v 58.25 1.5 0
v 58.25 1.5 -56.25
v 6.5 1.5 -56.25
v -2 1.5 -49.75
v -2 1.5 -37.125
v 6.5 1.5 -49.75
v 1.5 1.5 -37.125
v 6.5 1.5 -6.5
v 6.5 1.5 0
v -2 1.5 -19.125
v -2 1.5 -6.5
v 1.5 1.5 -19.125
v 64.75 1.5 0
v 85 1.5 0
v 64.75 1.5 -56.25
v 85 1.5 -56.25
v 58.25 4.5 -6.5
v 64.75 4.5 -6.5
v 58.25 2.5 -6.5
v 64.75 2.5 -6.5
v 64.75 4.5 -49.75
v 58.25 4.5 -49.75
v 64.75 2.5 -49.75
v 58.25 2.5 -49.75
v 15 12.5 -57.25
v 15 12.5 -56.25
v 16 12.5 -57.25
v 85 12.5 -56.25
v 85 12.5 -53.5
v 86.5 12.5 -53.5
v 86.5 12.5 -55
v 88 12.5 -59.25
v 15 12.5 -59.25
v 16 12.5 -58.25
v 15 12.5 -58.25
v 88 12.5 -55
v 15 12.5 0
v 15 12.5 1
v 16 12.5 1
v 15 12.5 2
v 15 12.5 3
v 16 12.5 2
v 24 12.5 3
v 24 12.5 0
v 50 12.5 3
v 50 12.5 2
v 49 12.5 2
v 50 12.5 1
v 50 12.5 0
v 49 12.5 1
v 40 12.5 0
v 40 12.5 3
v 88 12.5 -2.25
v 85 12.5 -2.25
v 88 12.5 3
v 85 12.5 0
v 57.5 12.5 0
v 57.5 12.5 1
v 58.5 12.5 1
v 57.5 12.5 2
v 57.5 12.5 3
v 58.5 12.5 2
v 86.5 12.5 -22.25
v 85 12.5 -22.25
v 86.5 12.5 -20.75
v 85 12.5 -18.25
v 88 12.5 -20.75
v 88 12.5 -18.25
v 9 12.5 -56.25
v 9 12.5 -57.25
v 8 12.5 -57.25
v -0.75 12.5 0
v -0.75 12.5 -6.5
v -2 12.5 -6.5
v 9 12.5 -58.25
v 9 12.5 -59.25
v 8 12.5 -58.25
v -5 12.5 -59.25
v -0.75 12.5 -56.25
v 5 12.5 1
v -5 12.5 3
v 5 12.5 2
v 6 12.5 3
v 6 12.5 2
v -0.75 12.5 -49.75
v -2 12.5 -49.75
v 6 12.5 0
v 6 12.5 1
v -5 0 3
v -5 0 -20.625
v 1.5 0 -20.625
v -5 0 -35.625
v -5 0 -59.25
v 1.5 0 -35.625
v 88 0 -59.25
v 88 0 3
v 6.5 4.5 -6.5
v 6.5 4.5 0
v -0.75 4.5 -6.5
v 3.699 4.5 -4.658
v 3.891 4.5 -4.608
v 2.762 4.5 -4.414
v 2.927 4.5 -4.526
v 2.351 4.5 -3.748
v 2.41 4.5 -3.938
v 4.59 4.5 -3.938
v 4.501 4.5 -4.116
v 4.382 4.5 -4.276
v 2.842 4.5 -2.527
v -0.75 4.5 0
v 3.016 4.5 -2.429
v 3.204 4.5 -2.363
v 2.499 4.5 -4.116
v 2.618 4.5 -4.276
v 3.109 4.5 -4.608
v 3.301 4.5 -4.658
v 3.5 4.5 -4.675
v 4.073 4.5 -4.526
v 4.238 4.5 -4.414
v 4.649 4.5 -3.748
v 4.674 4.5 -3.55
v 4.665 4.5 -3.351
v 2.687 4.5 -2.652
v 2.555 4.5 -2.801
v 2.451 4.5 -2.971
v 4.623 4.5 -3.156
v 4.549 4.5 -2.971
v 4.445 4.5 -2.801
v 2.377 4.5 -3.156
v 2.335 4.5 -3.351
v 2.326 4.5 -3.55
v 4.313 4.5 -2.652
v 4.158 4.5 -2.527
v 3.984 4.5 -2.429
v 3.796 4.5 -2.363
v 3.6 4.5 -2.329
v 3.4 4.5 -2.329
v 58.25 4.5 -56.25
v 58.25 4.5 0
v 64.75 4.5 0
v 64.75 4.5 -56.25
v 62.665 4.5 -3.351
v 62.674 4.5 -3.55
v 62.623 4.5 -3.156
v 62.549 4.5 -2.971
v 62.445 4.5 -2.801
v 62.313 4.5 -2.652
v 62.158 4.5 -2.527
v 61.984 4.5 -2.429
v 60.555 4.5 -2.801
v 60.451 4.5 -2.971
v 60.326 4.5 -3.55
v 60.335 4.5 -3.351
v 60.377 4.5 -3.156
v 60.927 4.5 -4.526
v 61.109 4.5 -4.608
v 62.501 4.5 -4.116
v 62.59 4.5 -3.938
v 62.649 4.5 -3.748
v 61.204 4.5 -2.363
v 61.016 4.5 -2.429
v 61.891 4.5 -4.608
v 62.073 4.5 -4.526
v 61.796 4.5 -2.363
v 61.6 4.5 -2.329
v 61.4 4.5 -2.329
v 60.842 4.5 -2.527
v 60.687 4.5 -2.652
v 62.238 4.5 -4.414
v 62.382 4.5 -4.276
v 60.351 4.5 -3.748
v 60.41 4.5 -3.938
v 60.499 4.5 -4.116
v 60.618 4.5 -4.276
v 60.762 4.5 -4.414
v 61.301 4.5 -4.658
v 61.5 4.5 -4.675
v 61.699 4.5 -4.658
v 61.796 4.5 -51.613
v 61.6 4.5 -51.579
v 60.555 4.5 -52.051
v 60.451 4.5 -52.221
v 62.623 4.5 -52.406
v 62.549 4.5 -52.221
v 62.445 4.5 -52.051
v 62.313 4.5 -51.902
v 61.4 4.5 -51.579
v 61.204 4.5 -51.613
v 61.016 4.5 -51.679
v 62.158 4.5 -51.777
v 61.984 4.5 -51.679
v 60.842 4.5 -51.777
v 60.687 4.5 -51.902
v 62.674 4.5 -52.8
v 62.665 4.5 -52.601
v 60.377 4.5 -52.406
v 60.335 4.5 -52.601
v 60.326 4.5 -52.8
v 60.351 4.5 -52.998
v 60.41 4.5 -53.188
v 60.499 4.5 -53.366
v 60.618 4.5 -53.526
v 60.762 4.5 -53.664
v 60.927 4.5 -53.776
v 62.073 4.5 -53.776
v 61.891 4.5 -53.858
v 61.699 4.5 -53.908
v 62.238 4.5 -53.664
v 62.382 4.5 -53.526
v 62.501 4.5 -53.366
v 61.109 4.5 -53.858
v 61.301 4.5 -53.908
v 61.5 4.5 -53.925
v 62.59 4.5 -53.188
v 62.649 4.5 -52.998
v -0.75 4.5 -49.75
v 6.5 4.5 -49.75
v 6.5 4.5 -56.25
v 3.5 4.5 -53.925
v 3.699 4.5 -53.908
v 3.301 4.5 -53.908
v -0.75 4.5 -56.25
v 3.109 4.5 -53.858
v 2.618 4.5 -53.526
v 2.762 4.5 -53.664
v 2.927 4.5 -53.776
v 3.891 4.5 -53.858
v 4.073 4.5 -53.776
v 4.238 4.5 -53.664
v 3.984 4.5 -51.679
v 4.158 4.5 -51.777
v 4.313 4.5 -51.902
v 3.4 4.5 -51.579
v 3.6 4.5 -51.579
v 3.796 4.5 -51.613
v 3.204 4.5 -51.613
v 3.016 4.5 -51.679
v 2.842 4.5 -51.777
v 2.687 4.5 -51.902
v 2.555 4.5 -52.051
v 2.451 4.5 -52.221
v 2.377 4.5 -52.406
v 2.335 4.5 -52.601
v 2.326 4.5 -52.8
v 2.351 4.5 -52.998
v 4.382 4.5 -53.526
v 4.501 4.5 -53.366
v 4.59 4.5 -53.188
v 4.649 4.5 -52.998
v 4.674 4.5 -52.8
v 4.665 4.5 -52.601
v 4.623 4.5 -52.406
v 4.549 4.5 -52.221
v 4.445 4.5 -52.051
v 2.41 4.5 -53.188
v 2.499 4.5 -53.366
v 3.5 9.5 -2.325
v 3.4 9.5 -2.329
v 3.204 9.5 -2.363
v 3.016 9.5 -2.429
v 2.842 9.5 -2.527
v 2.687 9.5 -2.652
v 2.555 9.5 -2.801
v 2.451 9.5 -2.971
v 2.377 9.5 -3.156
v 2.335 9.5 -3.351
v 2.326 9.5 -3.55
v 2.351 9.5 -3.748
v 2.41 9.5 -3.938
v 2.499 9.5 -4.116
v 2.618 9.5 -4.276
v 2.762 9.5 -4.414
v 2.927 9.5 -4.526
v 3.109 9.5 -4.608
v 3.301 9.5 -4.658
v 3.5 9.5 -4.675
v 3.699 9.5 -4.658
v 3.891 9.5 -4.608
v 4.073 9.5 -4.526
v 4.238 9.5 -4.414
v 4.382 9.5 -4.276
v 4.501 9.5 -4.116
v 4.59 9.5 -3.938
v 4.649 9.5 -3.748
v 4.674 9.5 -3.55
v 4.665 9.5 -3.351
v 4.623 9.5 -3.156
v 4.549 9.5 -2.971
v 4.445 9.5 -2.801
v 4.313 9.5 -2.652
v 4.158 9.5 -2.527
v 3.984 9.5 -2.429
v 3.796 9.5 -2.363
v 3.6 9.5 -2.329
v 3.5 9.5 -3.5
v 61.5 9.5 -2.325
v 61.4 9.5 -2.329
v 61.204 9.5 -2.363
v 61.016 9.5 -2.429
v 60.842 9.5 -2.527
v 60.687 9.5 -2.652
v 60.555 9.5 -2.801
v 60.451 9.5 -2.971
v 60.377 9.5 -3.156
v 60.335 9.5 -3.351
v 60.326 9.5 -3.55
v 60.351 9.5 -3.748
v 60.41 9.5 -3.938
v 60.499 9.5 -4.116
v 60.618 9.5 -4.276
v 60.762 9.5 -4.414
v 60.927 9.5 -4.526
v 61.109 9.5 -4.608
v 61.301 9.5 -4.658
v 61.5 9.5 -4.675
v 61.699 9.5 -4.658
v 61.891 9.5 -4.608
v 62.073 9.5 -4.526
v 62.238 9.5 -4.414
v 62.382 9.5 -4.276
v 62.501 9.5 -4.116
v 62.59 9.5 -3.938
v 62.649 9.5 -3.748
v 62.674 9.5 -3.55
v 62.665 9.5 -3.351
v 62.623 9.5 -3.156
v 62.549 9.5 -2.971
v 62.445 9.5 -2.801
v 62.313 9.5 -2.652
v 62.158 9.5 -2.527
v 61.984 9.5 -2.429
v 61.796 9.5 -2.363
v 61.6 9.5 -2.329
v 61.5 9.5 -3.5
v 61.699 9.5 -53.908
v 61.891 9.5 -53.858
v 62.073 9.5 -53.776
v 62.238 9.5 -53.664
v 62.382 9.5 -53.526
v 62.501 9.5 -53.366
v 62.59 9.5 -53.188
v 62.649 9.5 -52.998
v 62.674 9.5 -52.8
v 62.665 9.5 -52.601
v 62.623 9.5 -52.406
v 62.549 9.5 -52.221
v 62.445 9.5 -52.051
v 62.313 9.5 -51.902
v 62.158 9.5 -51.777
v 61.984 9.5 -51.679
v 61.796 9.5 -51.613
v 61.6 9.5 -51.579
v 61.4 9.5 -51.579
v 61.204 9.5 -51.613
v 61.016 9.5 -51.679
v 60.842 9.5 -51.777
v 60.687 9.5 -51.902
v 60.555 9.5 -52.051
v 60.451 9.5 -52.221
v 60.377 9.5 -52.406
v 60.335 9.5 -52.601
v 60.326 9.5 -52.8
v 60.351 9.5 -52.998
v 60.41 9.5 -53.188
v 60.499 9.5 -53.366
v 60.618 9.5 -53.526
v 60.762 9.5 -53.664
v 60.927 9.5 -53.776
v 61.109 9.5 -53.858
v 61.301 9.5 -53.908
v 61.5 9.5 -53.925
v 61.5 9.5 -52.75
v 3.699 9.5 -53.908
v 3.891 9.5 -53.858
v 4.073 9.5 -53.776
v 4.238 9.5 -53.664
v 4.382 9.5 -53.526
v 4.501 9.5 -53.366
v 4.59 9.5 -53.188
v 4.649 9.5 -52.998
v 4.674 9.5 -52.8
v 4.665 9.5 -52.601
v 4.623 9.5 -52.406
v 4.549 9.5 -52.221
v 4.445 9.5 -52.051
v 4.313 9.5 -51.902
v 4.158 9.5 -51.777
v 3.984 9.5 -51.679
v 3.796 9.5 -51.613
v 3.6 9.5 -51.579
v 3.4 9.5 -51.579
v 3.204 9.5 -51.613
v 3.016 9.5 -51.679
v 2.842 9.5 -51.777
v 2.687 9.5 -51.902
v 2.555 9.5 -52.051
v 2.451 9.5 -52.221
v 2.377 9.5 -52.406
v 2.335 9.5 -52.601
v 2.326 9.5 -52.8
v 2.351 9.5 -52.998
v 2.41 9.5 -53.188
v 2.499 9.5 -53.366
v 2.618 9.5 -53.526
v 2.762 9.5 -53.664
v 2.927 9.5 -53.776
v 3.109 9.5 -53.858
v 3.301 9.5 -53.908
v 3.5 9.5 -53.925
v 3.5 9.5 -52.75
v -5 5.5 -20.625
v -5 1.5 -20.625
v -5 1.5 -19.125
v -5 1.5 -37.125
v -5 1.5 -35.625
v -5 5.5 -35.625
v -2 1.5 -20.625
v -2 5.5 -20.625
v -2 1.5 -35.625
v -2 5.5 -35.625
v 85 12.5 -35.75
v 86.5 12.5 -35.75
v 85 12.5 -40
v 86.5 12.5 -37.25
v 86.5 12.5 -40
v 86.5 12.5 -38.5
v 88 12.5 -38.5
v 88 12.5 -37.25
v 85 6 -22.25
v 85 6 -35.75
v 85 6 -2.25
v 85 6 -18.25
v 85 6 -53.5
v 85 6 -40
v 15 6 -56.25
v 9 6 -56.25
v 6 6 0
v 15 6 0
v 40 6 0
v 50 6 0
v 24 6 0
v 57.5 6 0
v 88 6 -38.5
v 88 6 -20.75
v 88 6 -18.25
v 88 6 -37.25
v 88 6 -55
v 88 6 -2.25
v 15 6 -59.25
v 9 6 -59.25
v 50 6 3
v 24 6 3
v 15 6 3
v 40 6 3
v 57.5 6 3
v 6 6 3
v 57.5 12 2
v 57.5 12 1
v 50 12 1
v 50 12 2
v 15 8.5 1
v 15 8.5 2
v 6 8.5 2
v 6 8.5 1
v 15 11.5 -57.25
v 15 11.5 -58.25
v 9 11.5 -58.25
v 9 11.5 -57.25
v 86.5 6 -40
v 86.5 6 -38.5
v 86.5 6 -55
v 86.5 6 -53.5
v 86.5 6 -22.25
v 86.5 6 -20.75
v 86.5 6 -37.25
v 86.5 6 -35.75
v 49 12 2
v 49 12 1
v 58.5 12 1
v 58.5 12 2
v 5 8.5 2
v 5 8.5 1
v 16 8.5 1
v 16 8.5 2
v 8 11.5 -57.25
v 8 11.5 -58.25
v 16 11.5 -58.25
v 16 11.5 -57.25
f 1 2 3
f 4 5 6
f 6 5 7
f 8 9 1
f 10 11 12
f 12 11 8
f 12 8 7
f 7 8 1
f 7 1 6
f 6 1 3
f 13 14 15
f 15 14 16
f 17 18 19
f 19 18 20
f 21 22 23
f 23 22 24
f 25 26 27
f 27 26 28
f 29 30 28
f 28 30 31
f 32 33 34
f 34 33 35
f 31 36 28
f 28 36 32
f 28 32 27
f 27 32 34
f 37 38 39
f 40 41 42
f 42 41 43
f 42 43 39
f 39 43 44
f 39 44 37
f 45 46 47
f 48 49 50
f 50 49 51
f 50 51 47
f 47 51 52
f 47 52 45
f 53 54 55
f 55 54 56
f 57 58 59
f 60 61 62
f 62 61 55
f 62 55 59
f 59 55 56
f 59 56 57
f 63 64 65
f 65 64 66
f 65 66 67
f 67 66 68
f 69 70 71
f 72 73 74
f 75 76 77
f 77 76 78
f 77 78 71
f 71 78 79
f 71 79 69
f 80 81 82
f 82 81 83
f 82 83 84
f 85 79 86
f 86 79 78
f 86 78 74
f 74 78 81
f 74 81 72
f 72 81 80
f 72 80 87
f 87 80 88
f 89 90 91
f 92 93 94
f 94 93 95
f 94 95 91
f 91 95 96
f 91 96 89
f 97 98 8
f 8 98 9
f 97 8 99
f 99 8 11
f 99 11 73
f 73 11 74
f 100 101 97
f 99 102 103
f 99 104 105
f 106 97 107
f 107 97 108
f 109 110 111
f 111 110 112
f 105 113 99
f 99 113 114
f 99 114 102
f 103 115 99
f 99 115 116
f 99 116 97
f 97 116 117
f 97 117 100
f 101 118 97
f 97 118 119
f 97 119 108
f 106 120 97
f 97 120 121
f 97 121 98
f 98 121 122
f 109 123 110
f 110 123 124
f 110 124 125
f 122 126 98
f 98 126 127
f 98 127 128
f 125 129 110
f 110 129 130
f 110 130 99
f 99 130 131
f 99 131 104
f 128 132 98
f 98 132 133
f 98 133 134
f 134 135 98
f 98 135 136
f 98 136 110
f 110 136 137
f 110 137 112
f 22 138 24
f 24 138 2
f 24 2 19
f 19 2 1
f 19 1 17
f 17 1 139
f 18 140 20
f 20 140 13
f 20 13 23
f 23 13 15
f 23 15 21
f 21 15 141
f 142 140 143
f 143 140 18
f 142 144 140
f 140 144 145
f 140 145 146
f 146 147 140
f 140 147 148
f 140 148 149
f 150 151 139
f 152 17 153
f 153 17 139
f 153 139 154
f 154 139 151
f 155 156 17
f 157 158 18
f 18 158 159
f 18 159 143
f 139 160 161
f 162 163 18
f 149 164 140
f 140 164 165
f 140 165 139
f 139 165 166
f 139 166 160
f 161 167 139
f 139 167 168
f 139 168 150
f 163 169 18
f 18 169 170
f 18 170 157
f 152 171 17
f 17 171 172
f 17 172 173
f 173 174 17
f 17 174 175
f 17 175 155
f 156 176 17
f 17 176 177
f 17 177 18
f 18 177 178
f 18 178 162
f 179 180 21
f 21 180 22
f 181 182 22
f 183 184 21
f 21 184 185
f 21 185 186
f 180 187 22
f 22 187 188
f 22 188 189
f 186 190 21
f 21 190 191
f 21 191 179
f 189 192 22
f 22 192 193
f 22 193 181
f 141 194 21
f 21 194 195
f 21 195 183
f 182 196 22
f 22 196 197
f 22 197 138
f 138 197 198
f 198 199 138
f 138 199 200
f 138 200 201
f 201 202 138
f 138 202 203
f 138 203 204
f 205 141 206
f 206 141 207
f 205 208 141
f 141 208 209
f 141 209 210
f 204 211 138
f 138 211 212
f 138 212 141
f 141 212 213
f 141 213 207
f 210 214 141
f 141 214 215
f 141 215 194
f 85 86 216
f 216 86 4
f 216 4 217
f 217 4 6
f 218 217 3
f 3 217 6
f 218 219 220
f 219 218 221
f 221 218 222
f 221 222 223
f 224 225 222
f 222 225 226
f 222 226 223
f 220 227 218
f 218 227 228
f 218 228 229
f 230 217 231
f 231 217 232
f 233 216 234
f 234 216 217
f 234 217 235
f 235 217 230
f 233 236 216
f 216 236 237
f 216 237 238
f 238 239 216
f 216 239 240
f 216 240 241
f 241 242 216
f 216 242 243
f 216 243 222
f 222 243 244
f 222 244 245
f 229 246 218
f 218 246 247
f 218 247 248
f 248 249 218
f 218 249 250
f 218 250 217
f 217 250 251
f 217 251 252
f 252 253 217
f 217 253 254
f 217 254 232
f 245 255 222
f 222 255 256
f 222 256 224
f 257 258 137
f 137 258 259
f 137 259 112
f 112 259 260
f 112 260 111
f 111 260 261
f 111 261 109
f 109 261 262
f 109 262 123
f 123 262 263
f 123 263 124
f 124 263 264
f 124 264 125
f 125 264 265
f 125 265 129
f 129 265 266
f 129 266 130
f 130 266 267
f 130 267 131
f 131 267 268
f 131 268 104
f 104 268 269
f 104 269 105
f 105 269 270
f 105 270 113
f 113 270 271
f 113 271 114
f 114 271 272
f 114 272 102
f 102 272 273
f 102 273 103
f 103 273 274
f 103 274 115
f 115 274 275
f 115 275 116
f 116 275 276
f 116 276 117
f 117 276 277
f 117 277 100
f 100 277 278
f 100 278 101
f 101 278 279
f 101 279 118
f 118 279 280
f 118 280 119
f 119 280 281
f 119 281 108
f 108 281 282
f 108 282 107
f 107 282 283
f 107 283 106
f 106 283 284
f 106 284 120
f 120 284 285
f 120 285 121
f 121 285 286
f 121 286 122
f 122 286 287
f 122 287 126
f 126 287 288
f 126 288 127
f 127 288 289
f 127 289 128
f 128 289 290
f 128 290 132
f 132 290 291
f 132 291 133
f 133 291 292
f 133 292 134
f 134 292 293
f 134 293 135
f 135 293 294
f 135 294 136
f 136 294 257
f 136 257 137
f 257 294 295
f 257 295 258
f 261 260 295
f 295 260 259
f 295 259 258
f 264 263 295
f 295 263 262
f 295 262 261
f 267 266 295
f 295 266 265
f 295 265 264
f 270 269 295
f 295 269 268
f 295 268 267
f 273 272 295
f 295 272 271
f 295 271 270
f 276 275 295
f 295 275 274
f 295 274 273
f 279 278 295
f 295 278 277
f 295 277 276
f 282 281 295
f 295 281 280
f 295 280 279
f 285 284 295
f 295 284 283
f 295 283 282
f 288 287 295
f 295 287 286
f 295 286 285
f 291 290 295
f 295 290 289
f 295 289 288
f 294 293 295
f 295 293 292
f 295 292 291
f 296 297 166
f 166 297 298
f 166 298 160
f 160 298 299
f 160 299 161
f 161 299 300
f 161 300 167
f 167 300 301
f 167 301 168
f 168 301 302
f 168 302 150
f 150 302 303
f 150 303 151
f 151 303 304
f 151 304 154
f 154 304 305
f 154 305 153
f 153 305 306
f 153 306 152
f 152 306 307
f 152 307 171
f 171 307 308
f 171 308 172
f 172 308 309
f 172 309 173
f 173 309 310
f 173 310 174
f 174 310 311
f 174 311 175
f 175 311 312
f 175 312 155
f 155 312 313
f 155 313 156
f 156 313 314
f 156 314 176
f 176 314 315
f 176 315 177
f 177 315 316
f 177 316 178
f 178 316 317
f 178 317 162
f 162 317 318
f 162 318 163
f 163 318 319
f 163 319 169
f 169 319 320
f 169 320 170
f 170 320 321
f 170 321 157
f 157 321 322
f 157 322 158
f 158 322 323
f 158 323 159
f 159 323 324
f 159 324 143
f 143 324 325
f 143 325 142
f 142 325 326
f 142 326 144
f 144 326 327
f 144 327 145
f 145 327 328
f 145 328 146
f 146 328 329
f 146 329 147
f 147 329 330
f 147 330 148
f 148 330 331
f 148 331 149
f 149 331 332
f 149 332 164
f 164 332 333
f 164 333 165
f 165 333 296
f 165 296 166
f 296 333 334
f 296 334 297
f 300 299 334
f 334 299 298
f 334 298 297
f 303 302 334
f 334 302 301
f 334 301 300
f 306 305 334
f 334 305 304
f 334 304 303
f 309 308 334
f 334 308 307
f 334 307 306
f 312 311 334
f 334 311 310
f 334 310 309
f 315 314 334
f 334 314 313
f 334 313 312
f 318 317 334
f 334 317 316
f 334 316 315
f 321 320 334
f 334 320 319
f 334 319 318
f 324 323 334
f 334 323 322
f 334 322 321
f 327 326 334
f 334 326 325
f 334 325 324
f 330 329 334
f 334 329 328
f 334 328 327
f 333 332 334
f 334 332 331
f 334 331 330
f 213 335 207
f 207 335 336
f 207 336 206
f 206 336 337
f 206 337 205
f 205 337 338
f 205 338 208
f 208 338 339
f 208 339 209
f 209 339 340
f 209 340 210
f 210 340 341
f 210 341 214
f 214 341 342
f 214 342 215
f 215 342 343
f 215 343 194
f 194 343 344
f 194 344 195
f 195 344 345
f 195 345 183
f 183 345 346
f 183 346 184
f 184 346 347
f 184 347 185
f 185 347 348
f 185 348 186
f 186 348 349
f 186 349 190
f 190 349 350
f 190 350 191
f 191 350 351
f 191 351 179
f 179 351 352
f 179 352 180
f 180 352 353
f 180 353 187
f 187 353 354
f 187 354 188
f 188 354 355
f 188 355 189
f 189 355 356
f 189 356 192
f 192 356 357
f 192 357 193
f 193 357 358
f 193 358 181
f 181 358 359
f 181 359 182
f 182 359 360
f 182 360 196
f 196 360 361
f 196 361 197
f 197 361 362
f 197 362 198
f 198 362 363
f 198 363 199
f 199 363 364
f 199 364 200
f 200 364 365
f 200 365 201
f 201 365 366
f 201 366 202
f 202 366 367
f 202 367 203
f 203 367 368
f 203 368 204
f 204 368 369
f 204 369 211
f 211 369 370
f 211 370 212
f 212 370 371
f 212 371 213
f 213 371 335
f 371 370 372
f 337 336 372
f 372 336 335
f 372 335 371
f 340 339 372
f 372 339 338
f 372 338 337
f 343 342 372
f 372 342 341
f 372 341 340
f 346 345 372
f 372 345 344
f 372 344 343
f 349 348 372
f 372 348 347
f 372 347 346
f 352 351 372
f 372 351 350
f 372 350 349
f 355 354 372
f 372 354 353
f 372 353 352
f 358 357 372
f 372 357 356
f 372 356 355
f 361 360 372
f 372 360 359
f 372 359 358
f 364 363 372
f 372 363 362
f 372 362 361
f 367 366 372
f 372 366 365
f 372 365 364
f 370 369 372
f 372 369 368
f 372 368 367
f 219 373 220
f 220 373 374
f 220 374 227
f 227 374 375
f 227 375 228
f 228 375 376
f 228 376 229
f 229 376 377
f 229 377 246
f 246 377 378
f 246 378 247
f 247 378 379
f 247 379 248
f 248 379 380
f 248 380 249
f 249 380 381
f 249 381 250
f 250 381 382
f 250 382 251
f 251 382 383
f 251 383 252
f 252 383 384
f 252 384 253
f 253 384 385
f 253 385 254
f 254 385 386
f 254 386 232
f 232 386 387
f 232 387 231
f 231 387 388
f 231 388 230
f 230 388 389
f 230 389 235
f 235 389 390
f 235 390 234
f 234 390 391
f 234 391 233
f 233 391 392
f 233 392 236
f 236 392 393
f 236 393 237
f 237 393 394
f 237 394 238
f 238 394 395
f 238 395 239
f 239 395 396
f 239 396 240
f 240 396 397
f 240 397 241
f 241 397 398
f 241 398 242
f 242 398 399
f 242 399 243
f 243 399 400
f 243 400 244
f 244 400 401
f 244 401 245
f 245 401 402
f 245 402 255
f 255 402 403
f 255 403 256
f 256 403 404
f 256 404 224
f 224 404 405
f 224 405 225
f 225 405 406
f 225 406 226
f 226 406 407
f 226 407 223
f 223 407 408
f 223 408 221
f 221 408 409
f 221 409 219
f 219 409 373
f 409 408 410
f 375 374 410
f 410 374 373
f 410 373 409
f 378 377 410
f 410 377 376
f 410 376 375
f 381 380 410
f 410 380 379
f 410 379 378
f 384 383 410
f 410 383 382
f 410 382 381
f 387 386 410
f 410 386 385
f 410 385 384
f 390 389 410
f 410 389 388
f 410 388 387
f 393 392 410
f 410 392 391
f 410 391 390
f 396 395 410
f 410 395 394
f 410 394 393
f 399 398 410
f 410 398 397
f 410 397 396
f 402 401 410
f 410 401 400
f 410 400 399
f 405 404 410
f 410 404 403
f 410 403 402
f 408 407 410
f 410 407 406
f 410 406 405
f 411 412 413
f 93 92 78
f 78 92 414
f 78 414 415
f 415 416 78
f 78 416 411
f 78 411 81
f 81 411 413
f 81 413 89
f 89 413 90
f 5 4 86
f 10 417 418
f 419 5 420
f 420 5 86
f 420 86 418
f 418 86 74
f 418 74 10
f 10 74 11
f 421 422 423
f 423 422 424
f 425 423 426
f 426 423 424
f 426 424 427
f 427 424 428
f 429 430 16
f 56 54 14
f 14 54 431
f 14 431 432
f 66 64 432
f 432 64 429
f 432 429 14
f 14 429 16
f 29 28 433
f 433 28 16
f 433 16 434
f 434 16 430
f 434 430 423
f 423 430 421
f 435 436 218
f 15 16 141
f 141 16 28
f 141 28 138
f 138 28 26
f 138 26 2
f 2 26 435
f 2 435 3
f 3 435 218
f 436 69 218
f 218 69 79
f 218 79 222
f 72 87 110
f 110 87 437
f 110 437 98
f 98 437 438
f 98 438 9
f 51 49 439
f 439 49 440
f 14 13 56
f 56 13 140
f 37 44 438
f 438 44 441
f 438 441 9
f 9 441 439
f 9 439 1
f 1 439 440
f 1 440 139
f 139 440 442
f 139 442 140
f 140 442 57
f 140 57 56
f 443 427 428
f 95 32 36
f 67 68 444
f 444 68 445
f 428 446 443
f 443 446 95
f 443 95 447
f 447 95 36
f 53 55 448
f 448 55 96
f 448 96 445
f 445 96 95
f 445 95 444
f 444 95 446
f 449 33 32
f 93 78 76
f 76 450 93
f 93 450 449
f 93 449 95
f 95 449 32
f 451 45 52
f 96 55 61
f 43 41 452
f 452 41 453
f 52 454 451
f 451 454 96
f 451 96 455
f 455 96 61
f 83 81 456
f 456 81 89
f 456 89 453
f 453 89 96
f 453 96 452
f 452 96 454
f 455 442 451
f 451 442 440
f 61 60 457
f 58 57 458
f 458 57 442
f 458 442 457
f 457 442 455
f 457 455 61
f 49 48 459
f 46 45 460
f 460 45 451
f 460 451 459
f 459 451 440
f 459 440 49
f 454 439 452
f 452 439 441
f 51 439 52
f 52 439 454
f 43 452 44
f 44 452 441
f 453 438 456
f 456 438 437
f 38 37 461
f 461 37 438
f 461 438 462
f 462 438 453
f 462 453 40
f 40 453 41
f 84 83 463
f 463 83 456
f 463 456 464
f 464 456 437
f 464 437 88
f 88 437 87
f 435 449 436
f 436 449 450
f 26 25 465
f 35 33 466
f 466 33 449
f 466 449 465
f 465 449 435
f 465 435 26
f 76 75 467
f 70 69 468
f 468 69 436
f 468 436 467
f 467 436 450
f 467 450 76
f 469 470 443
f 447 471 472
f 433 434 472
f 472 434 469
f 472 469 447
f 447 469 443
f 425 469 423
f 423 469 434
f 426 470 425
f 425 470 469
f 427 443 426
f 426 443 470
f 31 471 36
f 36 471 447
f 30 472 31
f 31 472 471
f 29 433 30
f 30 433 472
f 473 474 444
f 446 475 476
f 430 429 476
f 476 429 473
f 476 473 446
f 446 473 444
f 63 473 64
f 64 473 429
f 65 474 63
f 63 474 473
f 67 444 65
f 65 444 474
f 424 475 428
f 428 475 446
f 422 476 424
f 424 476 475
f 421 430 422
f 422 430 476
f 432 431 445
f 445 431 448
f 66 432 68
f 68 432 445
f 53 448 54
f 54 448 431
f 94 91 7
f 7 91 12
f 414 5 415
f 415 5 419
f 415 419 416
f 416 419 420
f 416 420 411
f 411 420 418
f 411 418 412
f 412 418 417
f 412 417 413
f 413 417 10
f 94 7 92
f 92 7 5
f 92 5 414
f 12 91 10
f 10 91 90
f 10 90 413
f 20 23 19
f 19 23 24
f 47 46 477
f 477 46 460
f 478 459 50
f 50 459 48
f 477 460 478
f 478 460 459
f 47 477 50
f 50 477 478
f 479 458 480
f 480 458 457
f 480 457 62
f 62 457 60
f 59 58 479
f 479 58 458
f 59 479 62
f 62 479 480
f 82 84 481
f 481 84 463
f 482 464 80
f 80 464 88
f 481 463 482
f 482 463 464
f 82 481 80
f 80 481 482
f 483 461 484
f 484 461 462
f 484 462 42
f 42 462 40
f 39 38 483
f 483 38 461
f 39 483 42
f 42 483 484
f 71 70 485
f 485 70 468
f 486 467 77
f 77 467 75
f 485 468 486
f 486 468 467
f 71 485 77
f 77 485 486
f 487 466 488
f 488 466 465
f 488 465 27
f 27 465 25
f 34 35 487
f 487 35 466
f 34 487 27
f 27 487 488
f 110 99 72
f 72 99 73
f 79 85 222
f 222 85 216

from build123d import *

# Parameters (mm, degrees)
SKETCH1_W           = 85
SKETCH1_H           = 56.25
BOSS_EXTRUDE1_DEPTH = 1.5
SKETCH2_W           = 6.5
SKETCH2_H           = 6.5
BOSS_EXTRUDE2_DEPTH = 3
SKETCH3_R           = 1.175
BOSS_EXTRUDE3_DEPTH = 5
SKETCH4_W           = 56.25
SKETCH4_H           = 1.5
BOSS_EXTRUDE4_DEPTH = 5
BOSS_EXTRUDE5_DEPTH = 11
SKETCH6_W           = 90
SKETCH6_H           = 3
BOSS_EXTRUDE6_DEPTH = 12.5
SKETCH7_W           = 6
SKETCH7_H           = 3
SKETCH7_W_2         = 9
SKETCH7_W_3         = 16
SKETCH7_W_4         = 7.5
SKETCH7_W_5         = 3
SKETCH7_H_2         = 16
CUT_EXTRUDE1_DEPTH  = 6.5
CUT_EXTRUDE2_DEPTH  = 6.5
SKETCH9_W           = 6.5
SKETCH9_H           = 43.25
BOSS_EXTRUDE7_DEPTH = 1
SKETCH10_W          = 9.5
SKETCH10_H          = 1
CUT_EXTRUDE3_DEPTH  = 0.5
SKETCH11_W          = 11
SKETCH11_H          = 1
CUT_EXTRUDE4_DEPTH  = 4
SKETCH12_W          = 8
SKETCH12_H          = 1
CUT_EXTRUDE5_DEPTH  = 1
SKETCH13_W          = 0.75
SKETCH13_H          = 56.25
CUT_EXTRUDE6_DEPTH  = 8


with BuildPart() as part:
    # Sketch1 → Boss-Extrude1 (new body)
    with BuildSketch(Plane(origin=(0, 0, 0), x_dir=(1, 0, 0), z_dir=(0, 1, 0))):
        with Locations((42.5, 28.125)):
            Rectangle(SKETCH1_W, SKETCH1_H)
    extrude(amount=BOSS_EXTRUDE1_DEPTH)

    # Sketch2 → Boss-Extrude2 (add)
    with BuildSketch(Plane(origin=(0, 1.5, 0), x_dir=(1, 0, 0), z_dir=(0, 1, 0))):
        with Locations((3.25, 3.25)):
            Rectangle(SKETCH2_W, SKETCH2_H)
        with Locations((61.5, 3.25)):
            Rectangle(SKETCH2_W, SKETCH2_H)
        with Locations((61.5, 53)):
            Rectangle(SKETCH2_W, SKETCH2_H)
        with Locations((3.25, 53)):
            Rectangle(SKETCH2_W, SKETCH2_H)
    extrude(amount=BOSS_EXTRUDE2_DEPTH)

    # Sketch3 → Boss-Extrude3 (add)
    with BuildSketch(Plane(origin=(0, 4.5, 0), x_dir=(1, 0, 0), z_dir=(0, 1, 0))):
        with Locations(Location((3.5, 3.5, 0), (0, 0, 90))):
            Circle(SKETCH3_R)
        with Locations(Location((61.5, 3.5, 0), (0, 0, 90))):
            Circle(SKETCH3_R)
        with Locations(Location((61.5, 52.75, 0), (0, 0, 90))):
            Circle(SKETCH3_R)
        with Locations(Location((3.5, 52.75, 0), (0, 0, 90))):
            Circle(SKETCH3_R)
    extrude(amount=BOSS_EXTRUDE3_DEPTH)

    # Sketch4 → Boss-Extrude4 (add)
    with BuildSketch(Plane.ZY):
        with Locations((-28.125, 0.75)):
            Rectangle(SKETCH4_W, SKETCH4_H)
    extrude(amount=BOSS_EXTRUDE4_DEPTH)

    # Sketch5 → Boss-Extrude5 (add)
    with BuildSketch(Plane(origin=(0, 1.5, 0), x_dir=(1, 0, 0), z_dir=(0, 1, 0))):
        Polygon((-5, 0), (-2.5, 0), (0, 0), (0, 6.5), (-2, 6.5), (-2, 49.75), (0, 49.75), (0, 56.25), (-2.5, 56.25), (-5, 56.25), align=None)
    extrude(amount=BOSS_EXTRUDE5_DEPTH)

    # Sketch6 → Boss-Extrude6 (add)
    with BuildSketch(Plane(origin=(0, 0, 0), x_dir=(1, 0, 0), z_dir=(0, 1, 0))):
        with Locations((40, -1.5)):
            Rectangle(SKETCH6_W, SKETCH6_H)
        Polygon((85, 56.25), (85, 0), (85, -3), (88, -3), (88, 56.25), align=None)
        Polygon((-5, 56.25), (85, 56.25), (88, 56.25), (88, 59.25), (-5, 59.25), align=None)
    extrude(amount=BOSS_EXTRUDE6_DEPTH)

    # Sketch7 → Cut-Extrude1 (cut)
    with BuildSketch(Plane(origin=(0, 12.5, 0), x_dir=(1, 0, 0), z_dir=(0, 1, 0))):
        with Locations((12, 57.75)):
            Rectangle(SKETCH7_W, SKETCH7_H)
        Polygon((86.5, 40), (86.5, 38.5), (88, 38.5), (88, 55), (86.5, 55), (86.5, 53.5), (85, 53.5), (85, 40), align=None)
        with Locations((10.5, -1.5)):
            Rectangle(SKETCH7_W_2, SKETCH7_H)
        with Locations((32, -1.5)):
            Rectangle(SKETCH7_W_3, SKETCH7_H)
        with Locations((53.75, -1.5)):
            Rectangle(SKETCH7_W_4, SKETCH7_H)
        with Locations((86.5, 10.25)):
            Rectangle(SKETCH7_W_5, SKETCH7_H_2)
        Polygon((86.5, 35.75), (86.5, 37.25), (88, 37.25), (88, 20.75), (86.5, 20.75), (86.5, 22.25), (85, 22.25), (85, 35.75), align=None)
    extrude(amount=-CUT_EXTRUDE1_DEPTH, mode=Mode.SUBTRACT)

    # Sketch8 → Cut-Extrude2 (cut)
    with BuildSketch(Plane.ZY.offset(5)):
        Polygon((-35.625, 0), (-20.625, 0), (-19.125, 1.5), (-20.625, 1.5), (-20.625, 5.5), (-35.625, 5.5), (-35.625, 1.5), (-37.125, 1.5), align=None)
    extrude(amount=-CUT_EXTRUDE2_DEPTH, mode=Mode.SUBTRACT)

    # Sketch9 → Boss-Extrude7 (add)
    with BuildSketch(Plane(origin=(0, 1.5, 0), x_dir=(1, 0, 0), z_dir=(0, 1, 0))):
        with Locations((61.5, 28.125)):
            Rectangle(SKETCH9_W, SKETCH9_H)
    extrude(amount=BOSS_EXTRUDE7_DEPTH)

    # Sketch10 → Cut-Extrude3 (cut)
    with BuildSketch(Plane(origin=(0, 12.5, 0), x_dir=(1, 0, 0), z_dir=(0, 1, 0))):
        with Locations((53.75, -1.5)):
            Rectangle(SKETCH10_W, SKETCH10_H)
    extrude(amount=-CUT_EXTRUDE3_DEPTH, mode=Mode.SUBTRACT)

    # Sketch11 → Cut-Extrude4 (cut)
    with BuildSketch(Plane(origin=(0, 12.5, 0), x_dir=(1, 0, 0), z_dir=(0, 1, 0))):
        with Locations((10.5, -1.5)):
            Rectangle(SKETCH11_W, SKETCH11_H)
    extrude(amount=-CUT_EXTRUDE4_DEPTH, mode=Mode.SUBTRACT)

    # Sketch12 → Cut-Extrude5 (cut)
    with BuildSketch(Plane(origin=(0, 12.5, 0), x_dir=(1, 0, 0), z_dir=(0, 1, 0))):
        with Locations((12, 57.75)):
            Rectangle(SKETCH12_W, SKETCH12_H)
    extrude(amount=-CUT_EXTRUDE5_DEPTH, mode=Mode.SUBTRACT)

    # Sketch13 → Cut-Extrude6 (cut)
    with BuildSketch(Plane(origin=(0, 12.5, 0), x_dir=(1, 0, 0), z_dir=(0, 1, 0))):
        with Locations((-0.375, 28.125)):
            Rectangle(SKETCH13_W, SKETCH13_H)
    extrude(amount=-CUT_EXTRUDE6_DEPTH, mode=Mode.SUBTRACT)


solid = part.part
